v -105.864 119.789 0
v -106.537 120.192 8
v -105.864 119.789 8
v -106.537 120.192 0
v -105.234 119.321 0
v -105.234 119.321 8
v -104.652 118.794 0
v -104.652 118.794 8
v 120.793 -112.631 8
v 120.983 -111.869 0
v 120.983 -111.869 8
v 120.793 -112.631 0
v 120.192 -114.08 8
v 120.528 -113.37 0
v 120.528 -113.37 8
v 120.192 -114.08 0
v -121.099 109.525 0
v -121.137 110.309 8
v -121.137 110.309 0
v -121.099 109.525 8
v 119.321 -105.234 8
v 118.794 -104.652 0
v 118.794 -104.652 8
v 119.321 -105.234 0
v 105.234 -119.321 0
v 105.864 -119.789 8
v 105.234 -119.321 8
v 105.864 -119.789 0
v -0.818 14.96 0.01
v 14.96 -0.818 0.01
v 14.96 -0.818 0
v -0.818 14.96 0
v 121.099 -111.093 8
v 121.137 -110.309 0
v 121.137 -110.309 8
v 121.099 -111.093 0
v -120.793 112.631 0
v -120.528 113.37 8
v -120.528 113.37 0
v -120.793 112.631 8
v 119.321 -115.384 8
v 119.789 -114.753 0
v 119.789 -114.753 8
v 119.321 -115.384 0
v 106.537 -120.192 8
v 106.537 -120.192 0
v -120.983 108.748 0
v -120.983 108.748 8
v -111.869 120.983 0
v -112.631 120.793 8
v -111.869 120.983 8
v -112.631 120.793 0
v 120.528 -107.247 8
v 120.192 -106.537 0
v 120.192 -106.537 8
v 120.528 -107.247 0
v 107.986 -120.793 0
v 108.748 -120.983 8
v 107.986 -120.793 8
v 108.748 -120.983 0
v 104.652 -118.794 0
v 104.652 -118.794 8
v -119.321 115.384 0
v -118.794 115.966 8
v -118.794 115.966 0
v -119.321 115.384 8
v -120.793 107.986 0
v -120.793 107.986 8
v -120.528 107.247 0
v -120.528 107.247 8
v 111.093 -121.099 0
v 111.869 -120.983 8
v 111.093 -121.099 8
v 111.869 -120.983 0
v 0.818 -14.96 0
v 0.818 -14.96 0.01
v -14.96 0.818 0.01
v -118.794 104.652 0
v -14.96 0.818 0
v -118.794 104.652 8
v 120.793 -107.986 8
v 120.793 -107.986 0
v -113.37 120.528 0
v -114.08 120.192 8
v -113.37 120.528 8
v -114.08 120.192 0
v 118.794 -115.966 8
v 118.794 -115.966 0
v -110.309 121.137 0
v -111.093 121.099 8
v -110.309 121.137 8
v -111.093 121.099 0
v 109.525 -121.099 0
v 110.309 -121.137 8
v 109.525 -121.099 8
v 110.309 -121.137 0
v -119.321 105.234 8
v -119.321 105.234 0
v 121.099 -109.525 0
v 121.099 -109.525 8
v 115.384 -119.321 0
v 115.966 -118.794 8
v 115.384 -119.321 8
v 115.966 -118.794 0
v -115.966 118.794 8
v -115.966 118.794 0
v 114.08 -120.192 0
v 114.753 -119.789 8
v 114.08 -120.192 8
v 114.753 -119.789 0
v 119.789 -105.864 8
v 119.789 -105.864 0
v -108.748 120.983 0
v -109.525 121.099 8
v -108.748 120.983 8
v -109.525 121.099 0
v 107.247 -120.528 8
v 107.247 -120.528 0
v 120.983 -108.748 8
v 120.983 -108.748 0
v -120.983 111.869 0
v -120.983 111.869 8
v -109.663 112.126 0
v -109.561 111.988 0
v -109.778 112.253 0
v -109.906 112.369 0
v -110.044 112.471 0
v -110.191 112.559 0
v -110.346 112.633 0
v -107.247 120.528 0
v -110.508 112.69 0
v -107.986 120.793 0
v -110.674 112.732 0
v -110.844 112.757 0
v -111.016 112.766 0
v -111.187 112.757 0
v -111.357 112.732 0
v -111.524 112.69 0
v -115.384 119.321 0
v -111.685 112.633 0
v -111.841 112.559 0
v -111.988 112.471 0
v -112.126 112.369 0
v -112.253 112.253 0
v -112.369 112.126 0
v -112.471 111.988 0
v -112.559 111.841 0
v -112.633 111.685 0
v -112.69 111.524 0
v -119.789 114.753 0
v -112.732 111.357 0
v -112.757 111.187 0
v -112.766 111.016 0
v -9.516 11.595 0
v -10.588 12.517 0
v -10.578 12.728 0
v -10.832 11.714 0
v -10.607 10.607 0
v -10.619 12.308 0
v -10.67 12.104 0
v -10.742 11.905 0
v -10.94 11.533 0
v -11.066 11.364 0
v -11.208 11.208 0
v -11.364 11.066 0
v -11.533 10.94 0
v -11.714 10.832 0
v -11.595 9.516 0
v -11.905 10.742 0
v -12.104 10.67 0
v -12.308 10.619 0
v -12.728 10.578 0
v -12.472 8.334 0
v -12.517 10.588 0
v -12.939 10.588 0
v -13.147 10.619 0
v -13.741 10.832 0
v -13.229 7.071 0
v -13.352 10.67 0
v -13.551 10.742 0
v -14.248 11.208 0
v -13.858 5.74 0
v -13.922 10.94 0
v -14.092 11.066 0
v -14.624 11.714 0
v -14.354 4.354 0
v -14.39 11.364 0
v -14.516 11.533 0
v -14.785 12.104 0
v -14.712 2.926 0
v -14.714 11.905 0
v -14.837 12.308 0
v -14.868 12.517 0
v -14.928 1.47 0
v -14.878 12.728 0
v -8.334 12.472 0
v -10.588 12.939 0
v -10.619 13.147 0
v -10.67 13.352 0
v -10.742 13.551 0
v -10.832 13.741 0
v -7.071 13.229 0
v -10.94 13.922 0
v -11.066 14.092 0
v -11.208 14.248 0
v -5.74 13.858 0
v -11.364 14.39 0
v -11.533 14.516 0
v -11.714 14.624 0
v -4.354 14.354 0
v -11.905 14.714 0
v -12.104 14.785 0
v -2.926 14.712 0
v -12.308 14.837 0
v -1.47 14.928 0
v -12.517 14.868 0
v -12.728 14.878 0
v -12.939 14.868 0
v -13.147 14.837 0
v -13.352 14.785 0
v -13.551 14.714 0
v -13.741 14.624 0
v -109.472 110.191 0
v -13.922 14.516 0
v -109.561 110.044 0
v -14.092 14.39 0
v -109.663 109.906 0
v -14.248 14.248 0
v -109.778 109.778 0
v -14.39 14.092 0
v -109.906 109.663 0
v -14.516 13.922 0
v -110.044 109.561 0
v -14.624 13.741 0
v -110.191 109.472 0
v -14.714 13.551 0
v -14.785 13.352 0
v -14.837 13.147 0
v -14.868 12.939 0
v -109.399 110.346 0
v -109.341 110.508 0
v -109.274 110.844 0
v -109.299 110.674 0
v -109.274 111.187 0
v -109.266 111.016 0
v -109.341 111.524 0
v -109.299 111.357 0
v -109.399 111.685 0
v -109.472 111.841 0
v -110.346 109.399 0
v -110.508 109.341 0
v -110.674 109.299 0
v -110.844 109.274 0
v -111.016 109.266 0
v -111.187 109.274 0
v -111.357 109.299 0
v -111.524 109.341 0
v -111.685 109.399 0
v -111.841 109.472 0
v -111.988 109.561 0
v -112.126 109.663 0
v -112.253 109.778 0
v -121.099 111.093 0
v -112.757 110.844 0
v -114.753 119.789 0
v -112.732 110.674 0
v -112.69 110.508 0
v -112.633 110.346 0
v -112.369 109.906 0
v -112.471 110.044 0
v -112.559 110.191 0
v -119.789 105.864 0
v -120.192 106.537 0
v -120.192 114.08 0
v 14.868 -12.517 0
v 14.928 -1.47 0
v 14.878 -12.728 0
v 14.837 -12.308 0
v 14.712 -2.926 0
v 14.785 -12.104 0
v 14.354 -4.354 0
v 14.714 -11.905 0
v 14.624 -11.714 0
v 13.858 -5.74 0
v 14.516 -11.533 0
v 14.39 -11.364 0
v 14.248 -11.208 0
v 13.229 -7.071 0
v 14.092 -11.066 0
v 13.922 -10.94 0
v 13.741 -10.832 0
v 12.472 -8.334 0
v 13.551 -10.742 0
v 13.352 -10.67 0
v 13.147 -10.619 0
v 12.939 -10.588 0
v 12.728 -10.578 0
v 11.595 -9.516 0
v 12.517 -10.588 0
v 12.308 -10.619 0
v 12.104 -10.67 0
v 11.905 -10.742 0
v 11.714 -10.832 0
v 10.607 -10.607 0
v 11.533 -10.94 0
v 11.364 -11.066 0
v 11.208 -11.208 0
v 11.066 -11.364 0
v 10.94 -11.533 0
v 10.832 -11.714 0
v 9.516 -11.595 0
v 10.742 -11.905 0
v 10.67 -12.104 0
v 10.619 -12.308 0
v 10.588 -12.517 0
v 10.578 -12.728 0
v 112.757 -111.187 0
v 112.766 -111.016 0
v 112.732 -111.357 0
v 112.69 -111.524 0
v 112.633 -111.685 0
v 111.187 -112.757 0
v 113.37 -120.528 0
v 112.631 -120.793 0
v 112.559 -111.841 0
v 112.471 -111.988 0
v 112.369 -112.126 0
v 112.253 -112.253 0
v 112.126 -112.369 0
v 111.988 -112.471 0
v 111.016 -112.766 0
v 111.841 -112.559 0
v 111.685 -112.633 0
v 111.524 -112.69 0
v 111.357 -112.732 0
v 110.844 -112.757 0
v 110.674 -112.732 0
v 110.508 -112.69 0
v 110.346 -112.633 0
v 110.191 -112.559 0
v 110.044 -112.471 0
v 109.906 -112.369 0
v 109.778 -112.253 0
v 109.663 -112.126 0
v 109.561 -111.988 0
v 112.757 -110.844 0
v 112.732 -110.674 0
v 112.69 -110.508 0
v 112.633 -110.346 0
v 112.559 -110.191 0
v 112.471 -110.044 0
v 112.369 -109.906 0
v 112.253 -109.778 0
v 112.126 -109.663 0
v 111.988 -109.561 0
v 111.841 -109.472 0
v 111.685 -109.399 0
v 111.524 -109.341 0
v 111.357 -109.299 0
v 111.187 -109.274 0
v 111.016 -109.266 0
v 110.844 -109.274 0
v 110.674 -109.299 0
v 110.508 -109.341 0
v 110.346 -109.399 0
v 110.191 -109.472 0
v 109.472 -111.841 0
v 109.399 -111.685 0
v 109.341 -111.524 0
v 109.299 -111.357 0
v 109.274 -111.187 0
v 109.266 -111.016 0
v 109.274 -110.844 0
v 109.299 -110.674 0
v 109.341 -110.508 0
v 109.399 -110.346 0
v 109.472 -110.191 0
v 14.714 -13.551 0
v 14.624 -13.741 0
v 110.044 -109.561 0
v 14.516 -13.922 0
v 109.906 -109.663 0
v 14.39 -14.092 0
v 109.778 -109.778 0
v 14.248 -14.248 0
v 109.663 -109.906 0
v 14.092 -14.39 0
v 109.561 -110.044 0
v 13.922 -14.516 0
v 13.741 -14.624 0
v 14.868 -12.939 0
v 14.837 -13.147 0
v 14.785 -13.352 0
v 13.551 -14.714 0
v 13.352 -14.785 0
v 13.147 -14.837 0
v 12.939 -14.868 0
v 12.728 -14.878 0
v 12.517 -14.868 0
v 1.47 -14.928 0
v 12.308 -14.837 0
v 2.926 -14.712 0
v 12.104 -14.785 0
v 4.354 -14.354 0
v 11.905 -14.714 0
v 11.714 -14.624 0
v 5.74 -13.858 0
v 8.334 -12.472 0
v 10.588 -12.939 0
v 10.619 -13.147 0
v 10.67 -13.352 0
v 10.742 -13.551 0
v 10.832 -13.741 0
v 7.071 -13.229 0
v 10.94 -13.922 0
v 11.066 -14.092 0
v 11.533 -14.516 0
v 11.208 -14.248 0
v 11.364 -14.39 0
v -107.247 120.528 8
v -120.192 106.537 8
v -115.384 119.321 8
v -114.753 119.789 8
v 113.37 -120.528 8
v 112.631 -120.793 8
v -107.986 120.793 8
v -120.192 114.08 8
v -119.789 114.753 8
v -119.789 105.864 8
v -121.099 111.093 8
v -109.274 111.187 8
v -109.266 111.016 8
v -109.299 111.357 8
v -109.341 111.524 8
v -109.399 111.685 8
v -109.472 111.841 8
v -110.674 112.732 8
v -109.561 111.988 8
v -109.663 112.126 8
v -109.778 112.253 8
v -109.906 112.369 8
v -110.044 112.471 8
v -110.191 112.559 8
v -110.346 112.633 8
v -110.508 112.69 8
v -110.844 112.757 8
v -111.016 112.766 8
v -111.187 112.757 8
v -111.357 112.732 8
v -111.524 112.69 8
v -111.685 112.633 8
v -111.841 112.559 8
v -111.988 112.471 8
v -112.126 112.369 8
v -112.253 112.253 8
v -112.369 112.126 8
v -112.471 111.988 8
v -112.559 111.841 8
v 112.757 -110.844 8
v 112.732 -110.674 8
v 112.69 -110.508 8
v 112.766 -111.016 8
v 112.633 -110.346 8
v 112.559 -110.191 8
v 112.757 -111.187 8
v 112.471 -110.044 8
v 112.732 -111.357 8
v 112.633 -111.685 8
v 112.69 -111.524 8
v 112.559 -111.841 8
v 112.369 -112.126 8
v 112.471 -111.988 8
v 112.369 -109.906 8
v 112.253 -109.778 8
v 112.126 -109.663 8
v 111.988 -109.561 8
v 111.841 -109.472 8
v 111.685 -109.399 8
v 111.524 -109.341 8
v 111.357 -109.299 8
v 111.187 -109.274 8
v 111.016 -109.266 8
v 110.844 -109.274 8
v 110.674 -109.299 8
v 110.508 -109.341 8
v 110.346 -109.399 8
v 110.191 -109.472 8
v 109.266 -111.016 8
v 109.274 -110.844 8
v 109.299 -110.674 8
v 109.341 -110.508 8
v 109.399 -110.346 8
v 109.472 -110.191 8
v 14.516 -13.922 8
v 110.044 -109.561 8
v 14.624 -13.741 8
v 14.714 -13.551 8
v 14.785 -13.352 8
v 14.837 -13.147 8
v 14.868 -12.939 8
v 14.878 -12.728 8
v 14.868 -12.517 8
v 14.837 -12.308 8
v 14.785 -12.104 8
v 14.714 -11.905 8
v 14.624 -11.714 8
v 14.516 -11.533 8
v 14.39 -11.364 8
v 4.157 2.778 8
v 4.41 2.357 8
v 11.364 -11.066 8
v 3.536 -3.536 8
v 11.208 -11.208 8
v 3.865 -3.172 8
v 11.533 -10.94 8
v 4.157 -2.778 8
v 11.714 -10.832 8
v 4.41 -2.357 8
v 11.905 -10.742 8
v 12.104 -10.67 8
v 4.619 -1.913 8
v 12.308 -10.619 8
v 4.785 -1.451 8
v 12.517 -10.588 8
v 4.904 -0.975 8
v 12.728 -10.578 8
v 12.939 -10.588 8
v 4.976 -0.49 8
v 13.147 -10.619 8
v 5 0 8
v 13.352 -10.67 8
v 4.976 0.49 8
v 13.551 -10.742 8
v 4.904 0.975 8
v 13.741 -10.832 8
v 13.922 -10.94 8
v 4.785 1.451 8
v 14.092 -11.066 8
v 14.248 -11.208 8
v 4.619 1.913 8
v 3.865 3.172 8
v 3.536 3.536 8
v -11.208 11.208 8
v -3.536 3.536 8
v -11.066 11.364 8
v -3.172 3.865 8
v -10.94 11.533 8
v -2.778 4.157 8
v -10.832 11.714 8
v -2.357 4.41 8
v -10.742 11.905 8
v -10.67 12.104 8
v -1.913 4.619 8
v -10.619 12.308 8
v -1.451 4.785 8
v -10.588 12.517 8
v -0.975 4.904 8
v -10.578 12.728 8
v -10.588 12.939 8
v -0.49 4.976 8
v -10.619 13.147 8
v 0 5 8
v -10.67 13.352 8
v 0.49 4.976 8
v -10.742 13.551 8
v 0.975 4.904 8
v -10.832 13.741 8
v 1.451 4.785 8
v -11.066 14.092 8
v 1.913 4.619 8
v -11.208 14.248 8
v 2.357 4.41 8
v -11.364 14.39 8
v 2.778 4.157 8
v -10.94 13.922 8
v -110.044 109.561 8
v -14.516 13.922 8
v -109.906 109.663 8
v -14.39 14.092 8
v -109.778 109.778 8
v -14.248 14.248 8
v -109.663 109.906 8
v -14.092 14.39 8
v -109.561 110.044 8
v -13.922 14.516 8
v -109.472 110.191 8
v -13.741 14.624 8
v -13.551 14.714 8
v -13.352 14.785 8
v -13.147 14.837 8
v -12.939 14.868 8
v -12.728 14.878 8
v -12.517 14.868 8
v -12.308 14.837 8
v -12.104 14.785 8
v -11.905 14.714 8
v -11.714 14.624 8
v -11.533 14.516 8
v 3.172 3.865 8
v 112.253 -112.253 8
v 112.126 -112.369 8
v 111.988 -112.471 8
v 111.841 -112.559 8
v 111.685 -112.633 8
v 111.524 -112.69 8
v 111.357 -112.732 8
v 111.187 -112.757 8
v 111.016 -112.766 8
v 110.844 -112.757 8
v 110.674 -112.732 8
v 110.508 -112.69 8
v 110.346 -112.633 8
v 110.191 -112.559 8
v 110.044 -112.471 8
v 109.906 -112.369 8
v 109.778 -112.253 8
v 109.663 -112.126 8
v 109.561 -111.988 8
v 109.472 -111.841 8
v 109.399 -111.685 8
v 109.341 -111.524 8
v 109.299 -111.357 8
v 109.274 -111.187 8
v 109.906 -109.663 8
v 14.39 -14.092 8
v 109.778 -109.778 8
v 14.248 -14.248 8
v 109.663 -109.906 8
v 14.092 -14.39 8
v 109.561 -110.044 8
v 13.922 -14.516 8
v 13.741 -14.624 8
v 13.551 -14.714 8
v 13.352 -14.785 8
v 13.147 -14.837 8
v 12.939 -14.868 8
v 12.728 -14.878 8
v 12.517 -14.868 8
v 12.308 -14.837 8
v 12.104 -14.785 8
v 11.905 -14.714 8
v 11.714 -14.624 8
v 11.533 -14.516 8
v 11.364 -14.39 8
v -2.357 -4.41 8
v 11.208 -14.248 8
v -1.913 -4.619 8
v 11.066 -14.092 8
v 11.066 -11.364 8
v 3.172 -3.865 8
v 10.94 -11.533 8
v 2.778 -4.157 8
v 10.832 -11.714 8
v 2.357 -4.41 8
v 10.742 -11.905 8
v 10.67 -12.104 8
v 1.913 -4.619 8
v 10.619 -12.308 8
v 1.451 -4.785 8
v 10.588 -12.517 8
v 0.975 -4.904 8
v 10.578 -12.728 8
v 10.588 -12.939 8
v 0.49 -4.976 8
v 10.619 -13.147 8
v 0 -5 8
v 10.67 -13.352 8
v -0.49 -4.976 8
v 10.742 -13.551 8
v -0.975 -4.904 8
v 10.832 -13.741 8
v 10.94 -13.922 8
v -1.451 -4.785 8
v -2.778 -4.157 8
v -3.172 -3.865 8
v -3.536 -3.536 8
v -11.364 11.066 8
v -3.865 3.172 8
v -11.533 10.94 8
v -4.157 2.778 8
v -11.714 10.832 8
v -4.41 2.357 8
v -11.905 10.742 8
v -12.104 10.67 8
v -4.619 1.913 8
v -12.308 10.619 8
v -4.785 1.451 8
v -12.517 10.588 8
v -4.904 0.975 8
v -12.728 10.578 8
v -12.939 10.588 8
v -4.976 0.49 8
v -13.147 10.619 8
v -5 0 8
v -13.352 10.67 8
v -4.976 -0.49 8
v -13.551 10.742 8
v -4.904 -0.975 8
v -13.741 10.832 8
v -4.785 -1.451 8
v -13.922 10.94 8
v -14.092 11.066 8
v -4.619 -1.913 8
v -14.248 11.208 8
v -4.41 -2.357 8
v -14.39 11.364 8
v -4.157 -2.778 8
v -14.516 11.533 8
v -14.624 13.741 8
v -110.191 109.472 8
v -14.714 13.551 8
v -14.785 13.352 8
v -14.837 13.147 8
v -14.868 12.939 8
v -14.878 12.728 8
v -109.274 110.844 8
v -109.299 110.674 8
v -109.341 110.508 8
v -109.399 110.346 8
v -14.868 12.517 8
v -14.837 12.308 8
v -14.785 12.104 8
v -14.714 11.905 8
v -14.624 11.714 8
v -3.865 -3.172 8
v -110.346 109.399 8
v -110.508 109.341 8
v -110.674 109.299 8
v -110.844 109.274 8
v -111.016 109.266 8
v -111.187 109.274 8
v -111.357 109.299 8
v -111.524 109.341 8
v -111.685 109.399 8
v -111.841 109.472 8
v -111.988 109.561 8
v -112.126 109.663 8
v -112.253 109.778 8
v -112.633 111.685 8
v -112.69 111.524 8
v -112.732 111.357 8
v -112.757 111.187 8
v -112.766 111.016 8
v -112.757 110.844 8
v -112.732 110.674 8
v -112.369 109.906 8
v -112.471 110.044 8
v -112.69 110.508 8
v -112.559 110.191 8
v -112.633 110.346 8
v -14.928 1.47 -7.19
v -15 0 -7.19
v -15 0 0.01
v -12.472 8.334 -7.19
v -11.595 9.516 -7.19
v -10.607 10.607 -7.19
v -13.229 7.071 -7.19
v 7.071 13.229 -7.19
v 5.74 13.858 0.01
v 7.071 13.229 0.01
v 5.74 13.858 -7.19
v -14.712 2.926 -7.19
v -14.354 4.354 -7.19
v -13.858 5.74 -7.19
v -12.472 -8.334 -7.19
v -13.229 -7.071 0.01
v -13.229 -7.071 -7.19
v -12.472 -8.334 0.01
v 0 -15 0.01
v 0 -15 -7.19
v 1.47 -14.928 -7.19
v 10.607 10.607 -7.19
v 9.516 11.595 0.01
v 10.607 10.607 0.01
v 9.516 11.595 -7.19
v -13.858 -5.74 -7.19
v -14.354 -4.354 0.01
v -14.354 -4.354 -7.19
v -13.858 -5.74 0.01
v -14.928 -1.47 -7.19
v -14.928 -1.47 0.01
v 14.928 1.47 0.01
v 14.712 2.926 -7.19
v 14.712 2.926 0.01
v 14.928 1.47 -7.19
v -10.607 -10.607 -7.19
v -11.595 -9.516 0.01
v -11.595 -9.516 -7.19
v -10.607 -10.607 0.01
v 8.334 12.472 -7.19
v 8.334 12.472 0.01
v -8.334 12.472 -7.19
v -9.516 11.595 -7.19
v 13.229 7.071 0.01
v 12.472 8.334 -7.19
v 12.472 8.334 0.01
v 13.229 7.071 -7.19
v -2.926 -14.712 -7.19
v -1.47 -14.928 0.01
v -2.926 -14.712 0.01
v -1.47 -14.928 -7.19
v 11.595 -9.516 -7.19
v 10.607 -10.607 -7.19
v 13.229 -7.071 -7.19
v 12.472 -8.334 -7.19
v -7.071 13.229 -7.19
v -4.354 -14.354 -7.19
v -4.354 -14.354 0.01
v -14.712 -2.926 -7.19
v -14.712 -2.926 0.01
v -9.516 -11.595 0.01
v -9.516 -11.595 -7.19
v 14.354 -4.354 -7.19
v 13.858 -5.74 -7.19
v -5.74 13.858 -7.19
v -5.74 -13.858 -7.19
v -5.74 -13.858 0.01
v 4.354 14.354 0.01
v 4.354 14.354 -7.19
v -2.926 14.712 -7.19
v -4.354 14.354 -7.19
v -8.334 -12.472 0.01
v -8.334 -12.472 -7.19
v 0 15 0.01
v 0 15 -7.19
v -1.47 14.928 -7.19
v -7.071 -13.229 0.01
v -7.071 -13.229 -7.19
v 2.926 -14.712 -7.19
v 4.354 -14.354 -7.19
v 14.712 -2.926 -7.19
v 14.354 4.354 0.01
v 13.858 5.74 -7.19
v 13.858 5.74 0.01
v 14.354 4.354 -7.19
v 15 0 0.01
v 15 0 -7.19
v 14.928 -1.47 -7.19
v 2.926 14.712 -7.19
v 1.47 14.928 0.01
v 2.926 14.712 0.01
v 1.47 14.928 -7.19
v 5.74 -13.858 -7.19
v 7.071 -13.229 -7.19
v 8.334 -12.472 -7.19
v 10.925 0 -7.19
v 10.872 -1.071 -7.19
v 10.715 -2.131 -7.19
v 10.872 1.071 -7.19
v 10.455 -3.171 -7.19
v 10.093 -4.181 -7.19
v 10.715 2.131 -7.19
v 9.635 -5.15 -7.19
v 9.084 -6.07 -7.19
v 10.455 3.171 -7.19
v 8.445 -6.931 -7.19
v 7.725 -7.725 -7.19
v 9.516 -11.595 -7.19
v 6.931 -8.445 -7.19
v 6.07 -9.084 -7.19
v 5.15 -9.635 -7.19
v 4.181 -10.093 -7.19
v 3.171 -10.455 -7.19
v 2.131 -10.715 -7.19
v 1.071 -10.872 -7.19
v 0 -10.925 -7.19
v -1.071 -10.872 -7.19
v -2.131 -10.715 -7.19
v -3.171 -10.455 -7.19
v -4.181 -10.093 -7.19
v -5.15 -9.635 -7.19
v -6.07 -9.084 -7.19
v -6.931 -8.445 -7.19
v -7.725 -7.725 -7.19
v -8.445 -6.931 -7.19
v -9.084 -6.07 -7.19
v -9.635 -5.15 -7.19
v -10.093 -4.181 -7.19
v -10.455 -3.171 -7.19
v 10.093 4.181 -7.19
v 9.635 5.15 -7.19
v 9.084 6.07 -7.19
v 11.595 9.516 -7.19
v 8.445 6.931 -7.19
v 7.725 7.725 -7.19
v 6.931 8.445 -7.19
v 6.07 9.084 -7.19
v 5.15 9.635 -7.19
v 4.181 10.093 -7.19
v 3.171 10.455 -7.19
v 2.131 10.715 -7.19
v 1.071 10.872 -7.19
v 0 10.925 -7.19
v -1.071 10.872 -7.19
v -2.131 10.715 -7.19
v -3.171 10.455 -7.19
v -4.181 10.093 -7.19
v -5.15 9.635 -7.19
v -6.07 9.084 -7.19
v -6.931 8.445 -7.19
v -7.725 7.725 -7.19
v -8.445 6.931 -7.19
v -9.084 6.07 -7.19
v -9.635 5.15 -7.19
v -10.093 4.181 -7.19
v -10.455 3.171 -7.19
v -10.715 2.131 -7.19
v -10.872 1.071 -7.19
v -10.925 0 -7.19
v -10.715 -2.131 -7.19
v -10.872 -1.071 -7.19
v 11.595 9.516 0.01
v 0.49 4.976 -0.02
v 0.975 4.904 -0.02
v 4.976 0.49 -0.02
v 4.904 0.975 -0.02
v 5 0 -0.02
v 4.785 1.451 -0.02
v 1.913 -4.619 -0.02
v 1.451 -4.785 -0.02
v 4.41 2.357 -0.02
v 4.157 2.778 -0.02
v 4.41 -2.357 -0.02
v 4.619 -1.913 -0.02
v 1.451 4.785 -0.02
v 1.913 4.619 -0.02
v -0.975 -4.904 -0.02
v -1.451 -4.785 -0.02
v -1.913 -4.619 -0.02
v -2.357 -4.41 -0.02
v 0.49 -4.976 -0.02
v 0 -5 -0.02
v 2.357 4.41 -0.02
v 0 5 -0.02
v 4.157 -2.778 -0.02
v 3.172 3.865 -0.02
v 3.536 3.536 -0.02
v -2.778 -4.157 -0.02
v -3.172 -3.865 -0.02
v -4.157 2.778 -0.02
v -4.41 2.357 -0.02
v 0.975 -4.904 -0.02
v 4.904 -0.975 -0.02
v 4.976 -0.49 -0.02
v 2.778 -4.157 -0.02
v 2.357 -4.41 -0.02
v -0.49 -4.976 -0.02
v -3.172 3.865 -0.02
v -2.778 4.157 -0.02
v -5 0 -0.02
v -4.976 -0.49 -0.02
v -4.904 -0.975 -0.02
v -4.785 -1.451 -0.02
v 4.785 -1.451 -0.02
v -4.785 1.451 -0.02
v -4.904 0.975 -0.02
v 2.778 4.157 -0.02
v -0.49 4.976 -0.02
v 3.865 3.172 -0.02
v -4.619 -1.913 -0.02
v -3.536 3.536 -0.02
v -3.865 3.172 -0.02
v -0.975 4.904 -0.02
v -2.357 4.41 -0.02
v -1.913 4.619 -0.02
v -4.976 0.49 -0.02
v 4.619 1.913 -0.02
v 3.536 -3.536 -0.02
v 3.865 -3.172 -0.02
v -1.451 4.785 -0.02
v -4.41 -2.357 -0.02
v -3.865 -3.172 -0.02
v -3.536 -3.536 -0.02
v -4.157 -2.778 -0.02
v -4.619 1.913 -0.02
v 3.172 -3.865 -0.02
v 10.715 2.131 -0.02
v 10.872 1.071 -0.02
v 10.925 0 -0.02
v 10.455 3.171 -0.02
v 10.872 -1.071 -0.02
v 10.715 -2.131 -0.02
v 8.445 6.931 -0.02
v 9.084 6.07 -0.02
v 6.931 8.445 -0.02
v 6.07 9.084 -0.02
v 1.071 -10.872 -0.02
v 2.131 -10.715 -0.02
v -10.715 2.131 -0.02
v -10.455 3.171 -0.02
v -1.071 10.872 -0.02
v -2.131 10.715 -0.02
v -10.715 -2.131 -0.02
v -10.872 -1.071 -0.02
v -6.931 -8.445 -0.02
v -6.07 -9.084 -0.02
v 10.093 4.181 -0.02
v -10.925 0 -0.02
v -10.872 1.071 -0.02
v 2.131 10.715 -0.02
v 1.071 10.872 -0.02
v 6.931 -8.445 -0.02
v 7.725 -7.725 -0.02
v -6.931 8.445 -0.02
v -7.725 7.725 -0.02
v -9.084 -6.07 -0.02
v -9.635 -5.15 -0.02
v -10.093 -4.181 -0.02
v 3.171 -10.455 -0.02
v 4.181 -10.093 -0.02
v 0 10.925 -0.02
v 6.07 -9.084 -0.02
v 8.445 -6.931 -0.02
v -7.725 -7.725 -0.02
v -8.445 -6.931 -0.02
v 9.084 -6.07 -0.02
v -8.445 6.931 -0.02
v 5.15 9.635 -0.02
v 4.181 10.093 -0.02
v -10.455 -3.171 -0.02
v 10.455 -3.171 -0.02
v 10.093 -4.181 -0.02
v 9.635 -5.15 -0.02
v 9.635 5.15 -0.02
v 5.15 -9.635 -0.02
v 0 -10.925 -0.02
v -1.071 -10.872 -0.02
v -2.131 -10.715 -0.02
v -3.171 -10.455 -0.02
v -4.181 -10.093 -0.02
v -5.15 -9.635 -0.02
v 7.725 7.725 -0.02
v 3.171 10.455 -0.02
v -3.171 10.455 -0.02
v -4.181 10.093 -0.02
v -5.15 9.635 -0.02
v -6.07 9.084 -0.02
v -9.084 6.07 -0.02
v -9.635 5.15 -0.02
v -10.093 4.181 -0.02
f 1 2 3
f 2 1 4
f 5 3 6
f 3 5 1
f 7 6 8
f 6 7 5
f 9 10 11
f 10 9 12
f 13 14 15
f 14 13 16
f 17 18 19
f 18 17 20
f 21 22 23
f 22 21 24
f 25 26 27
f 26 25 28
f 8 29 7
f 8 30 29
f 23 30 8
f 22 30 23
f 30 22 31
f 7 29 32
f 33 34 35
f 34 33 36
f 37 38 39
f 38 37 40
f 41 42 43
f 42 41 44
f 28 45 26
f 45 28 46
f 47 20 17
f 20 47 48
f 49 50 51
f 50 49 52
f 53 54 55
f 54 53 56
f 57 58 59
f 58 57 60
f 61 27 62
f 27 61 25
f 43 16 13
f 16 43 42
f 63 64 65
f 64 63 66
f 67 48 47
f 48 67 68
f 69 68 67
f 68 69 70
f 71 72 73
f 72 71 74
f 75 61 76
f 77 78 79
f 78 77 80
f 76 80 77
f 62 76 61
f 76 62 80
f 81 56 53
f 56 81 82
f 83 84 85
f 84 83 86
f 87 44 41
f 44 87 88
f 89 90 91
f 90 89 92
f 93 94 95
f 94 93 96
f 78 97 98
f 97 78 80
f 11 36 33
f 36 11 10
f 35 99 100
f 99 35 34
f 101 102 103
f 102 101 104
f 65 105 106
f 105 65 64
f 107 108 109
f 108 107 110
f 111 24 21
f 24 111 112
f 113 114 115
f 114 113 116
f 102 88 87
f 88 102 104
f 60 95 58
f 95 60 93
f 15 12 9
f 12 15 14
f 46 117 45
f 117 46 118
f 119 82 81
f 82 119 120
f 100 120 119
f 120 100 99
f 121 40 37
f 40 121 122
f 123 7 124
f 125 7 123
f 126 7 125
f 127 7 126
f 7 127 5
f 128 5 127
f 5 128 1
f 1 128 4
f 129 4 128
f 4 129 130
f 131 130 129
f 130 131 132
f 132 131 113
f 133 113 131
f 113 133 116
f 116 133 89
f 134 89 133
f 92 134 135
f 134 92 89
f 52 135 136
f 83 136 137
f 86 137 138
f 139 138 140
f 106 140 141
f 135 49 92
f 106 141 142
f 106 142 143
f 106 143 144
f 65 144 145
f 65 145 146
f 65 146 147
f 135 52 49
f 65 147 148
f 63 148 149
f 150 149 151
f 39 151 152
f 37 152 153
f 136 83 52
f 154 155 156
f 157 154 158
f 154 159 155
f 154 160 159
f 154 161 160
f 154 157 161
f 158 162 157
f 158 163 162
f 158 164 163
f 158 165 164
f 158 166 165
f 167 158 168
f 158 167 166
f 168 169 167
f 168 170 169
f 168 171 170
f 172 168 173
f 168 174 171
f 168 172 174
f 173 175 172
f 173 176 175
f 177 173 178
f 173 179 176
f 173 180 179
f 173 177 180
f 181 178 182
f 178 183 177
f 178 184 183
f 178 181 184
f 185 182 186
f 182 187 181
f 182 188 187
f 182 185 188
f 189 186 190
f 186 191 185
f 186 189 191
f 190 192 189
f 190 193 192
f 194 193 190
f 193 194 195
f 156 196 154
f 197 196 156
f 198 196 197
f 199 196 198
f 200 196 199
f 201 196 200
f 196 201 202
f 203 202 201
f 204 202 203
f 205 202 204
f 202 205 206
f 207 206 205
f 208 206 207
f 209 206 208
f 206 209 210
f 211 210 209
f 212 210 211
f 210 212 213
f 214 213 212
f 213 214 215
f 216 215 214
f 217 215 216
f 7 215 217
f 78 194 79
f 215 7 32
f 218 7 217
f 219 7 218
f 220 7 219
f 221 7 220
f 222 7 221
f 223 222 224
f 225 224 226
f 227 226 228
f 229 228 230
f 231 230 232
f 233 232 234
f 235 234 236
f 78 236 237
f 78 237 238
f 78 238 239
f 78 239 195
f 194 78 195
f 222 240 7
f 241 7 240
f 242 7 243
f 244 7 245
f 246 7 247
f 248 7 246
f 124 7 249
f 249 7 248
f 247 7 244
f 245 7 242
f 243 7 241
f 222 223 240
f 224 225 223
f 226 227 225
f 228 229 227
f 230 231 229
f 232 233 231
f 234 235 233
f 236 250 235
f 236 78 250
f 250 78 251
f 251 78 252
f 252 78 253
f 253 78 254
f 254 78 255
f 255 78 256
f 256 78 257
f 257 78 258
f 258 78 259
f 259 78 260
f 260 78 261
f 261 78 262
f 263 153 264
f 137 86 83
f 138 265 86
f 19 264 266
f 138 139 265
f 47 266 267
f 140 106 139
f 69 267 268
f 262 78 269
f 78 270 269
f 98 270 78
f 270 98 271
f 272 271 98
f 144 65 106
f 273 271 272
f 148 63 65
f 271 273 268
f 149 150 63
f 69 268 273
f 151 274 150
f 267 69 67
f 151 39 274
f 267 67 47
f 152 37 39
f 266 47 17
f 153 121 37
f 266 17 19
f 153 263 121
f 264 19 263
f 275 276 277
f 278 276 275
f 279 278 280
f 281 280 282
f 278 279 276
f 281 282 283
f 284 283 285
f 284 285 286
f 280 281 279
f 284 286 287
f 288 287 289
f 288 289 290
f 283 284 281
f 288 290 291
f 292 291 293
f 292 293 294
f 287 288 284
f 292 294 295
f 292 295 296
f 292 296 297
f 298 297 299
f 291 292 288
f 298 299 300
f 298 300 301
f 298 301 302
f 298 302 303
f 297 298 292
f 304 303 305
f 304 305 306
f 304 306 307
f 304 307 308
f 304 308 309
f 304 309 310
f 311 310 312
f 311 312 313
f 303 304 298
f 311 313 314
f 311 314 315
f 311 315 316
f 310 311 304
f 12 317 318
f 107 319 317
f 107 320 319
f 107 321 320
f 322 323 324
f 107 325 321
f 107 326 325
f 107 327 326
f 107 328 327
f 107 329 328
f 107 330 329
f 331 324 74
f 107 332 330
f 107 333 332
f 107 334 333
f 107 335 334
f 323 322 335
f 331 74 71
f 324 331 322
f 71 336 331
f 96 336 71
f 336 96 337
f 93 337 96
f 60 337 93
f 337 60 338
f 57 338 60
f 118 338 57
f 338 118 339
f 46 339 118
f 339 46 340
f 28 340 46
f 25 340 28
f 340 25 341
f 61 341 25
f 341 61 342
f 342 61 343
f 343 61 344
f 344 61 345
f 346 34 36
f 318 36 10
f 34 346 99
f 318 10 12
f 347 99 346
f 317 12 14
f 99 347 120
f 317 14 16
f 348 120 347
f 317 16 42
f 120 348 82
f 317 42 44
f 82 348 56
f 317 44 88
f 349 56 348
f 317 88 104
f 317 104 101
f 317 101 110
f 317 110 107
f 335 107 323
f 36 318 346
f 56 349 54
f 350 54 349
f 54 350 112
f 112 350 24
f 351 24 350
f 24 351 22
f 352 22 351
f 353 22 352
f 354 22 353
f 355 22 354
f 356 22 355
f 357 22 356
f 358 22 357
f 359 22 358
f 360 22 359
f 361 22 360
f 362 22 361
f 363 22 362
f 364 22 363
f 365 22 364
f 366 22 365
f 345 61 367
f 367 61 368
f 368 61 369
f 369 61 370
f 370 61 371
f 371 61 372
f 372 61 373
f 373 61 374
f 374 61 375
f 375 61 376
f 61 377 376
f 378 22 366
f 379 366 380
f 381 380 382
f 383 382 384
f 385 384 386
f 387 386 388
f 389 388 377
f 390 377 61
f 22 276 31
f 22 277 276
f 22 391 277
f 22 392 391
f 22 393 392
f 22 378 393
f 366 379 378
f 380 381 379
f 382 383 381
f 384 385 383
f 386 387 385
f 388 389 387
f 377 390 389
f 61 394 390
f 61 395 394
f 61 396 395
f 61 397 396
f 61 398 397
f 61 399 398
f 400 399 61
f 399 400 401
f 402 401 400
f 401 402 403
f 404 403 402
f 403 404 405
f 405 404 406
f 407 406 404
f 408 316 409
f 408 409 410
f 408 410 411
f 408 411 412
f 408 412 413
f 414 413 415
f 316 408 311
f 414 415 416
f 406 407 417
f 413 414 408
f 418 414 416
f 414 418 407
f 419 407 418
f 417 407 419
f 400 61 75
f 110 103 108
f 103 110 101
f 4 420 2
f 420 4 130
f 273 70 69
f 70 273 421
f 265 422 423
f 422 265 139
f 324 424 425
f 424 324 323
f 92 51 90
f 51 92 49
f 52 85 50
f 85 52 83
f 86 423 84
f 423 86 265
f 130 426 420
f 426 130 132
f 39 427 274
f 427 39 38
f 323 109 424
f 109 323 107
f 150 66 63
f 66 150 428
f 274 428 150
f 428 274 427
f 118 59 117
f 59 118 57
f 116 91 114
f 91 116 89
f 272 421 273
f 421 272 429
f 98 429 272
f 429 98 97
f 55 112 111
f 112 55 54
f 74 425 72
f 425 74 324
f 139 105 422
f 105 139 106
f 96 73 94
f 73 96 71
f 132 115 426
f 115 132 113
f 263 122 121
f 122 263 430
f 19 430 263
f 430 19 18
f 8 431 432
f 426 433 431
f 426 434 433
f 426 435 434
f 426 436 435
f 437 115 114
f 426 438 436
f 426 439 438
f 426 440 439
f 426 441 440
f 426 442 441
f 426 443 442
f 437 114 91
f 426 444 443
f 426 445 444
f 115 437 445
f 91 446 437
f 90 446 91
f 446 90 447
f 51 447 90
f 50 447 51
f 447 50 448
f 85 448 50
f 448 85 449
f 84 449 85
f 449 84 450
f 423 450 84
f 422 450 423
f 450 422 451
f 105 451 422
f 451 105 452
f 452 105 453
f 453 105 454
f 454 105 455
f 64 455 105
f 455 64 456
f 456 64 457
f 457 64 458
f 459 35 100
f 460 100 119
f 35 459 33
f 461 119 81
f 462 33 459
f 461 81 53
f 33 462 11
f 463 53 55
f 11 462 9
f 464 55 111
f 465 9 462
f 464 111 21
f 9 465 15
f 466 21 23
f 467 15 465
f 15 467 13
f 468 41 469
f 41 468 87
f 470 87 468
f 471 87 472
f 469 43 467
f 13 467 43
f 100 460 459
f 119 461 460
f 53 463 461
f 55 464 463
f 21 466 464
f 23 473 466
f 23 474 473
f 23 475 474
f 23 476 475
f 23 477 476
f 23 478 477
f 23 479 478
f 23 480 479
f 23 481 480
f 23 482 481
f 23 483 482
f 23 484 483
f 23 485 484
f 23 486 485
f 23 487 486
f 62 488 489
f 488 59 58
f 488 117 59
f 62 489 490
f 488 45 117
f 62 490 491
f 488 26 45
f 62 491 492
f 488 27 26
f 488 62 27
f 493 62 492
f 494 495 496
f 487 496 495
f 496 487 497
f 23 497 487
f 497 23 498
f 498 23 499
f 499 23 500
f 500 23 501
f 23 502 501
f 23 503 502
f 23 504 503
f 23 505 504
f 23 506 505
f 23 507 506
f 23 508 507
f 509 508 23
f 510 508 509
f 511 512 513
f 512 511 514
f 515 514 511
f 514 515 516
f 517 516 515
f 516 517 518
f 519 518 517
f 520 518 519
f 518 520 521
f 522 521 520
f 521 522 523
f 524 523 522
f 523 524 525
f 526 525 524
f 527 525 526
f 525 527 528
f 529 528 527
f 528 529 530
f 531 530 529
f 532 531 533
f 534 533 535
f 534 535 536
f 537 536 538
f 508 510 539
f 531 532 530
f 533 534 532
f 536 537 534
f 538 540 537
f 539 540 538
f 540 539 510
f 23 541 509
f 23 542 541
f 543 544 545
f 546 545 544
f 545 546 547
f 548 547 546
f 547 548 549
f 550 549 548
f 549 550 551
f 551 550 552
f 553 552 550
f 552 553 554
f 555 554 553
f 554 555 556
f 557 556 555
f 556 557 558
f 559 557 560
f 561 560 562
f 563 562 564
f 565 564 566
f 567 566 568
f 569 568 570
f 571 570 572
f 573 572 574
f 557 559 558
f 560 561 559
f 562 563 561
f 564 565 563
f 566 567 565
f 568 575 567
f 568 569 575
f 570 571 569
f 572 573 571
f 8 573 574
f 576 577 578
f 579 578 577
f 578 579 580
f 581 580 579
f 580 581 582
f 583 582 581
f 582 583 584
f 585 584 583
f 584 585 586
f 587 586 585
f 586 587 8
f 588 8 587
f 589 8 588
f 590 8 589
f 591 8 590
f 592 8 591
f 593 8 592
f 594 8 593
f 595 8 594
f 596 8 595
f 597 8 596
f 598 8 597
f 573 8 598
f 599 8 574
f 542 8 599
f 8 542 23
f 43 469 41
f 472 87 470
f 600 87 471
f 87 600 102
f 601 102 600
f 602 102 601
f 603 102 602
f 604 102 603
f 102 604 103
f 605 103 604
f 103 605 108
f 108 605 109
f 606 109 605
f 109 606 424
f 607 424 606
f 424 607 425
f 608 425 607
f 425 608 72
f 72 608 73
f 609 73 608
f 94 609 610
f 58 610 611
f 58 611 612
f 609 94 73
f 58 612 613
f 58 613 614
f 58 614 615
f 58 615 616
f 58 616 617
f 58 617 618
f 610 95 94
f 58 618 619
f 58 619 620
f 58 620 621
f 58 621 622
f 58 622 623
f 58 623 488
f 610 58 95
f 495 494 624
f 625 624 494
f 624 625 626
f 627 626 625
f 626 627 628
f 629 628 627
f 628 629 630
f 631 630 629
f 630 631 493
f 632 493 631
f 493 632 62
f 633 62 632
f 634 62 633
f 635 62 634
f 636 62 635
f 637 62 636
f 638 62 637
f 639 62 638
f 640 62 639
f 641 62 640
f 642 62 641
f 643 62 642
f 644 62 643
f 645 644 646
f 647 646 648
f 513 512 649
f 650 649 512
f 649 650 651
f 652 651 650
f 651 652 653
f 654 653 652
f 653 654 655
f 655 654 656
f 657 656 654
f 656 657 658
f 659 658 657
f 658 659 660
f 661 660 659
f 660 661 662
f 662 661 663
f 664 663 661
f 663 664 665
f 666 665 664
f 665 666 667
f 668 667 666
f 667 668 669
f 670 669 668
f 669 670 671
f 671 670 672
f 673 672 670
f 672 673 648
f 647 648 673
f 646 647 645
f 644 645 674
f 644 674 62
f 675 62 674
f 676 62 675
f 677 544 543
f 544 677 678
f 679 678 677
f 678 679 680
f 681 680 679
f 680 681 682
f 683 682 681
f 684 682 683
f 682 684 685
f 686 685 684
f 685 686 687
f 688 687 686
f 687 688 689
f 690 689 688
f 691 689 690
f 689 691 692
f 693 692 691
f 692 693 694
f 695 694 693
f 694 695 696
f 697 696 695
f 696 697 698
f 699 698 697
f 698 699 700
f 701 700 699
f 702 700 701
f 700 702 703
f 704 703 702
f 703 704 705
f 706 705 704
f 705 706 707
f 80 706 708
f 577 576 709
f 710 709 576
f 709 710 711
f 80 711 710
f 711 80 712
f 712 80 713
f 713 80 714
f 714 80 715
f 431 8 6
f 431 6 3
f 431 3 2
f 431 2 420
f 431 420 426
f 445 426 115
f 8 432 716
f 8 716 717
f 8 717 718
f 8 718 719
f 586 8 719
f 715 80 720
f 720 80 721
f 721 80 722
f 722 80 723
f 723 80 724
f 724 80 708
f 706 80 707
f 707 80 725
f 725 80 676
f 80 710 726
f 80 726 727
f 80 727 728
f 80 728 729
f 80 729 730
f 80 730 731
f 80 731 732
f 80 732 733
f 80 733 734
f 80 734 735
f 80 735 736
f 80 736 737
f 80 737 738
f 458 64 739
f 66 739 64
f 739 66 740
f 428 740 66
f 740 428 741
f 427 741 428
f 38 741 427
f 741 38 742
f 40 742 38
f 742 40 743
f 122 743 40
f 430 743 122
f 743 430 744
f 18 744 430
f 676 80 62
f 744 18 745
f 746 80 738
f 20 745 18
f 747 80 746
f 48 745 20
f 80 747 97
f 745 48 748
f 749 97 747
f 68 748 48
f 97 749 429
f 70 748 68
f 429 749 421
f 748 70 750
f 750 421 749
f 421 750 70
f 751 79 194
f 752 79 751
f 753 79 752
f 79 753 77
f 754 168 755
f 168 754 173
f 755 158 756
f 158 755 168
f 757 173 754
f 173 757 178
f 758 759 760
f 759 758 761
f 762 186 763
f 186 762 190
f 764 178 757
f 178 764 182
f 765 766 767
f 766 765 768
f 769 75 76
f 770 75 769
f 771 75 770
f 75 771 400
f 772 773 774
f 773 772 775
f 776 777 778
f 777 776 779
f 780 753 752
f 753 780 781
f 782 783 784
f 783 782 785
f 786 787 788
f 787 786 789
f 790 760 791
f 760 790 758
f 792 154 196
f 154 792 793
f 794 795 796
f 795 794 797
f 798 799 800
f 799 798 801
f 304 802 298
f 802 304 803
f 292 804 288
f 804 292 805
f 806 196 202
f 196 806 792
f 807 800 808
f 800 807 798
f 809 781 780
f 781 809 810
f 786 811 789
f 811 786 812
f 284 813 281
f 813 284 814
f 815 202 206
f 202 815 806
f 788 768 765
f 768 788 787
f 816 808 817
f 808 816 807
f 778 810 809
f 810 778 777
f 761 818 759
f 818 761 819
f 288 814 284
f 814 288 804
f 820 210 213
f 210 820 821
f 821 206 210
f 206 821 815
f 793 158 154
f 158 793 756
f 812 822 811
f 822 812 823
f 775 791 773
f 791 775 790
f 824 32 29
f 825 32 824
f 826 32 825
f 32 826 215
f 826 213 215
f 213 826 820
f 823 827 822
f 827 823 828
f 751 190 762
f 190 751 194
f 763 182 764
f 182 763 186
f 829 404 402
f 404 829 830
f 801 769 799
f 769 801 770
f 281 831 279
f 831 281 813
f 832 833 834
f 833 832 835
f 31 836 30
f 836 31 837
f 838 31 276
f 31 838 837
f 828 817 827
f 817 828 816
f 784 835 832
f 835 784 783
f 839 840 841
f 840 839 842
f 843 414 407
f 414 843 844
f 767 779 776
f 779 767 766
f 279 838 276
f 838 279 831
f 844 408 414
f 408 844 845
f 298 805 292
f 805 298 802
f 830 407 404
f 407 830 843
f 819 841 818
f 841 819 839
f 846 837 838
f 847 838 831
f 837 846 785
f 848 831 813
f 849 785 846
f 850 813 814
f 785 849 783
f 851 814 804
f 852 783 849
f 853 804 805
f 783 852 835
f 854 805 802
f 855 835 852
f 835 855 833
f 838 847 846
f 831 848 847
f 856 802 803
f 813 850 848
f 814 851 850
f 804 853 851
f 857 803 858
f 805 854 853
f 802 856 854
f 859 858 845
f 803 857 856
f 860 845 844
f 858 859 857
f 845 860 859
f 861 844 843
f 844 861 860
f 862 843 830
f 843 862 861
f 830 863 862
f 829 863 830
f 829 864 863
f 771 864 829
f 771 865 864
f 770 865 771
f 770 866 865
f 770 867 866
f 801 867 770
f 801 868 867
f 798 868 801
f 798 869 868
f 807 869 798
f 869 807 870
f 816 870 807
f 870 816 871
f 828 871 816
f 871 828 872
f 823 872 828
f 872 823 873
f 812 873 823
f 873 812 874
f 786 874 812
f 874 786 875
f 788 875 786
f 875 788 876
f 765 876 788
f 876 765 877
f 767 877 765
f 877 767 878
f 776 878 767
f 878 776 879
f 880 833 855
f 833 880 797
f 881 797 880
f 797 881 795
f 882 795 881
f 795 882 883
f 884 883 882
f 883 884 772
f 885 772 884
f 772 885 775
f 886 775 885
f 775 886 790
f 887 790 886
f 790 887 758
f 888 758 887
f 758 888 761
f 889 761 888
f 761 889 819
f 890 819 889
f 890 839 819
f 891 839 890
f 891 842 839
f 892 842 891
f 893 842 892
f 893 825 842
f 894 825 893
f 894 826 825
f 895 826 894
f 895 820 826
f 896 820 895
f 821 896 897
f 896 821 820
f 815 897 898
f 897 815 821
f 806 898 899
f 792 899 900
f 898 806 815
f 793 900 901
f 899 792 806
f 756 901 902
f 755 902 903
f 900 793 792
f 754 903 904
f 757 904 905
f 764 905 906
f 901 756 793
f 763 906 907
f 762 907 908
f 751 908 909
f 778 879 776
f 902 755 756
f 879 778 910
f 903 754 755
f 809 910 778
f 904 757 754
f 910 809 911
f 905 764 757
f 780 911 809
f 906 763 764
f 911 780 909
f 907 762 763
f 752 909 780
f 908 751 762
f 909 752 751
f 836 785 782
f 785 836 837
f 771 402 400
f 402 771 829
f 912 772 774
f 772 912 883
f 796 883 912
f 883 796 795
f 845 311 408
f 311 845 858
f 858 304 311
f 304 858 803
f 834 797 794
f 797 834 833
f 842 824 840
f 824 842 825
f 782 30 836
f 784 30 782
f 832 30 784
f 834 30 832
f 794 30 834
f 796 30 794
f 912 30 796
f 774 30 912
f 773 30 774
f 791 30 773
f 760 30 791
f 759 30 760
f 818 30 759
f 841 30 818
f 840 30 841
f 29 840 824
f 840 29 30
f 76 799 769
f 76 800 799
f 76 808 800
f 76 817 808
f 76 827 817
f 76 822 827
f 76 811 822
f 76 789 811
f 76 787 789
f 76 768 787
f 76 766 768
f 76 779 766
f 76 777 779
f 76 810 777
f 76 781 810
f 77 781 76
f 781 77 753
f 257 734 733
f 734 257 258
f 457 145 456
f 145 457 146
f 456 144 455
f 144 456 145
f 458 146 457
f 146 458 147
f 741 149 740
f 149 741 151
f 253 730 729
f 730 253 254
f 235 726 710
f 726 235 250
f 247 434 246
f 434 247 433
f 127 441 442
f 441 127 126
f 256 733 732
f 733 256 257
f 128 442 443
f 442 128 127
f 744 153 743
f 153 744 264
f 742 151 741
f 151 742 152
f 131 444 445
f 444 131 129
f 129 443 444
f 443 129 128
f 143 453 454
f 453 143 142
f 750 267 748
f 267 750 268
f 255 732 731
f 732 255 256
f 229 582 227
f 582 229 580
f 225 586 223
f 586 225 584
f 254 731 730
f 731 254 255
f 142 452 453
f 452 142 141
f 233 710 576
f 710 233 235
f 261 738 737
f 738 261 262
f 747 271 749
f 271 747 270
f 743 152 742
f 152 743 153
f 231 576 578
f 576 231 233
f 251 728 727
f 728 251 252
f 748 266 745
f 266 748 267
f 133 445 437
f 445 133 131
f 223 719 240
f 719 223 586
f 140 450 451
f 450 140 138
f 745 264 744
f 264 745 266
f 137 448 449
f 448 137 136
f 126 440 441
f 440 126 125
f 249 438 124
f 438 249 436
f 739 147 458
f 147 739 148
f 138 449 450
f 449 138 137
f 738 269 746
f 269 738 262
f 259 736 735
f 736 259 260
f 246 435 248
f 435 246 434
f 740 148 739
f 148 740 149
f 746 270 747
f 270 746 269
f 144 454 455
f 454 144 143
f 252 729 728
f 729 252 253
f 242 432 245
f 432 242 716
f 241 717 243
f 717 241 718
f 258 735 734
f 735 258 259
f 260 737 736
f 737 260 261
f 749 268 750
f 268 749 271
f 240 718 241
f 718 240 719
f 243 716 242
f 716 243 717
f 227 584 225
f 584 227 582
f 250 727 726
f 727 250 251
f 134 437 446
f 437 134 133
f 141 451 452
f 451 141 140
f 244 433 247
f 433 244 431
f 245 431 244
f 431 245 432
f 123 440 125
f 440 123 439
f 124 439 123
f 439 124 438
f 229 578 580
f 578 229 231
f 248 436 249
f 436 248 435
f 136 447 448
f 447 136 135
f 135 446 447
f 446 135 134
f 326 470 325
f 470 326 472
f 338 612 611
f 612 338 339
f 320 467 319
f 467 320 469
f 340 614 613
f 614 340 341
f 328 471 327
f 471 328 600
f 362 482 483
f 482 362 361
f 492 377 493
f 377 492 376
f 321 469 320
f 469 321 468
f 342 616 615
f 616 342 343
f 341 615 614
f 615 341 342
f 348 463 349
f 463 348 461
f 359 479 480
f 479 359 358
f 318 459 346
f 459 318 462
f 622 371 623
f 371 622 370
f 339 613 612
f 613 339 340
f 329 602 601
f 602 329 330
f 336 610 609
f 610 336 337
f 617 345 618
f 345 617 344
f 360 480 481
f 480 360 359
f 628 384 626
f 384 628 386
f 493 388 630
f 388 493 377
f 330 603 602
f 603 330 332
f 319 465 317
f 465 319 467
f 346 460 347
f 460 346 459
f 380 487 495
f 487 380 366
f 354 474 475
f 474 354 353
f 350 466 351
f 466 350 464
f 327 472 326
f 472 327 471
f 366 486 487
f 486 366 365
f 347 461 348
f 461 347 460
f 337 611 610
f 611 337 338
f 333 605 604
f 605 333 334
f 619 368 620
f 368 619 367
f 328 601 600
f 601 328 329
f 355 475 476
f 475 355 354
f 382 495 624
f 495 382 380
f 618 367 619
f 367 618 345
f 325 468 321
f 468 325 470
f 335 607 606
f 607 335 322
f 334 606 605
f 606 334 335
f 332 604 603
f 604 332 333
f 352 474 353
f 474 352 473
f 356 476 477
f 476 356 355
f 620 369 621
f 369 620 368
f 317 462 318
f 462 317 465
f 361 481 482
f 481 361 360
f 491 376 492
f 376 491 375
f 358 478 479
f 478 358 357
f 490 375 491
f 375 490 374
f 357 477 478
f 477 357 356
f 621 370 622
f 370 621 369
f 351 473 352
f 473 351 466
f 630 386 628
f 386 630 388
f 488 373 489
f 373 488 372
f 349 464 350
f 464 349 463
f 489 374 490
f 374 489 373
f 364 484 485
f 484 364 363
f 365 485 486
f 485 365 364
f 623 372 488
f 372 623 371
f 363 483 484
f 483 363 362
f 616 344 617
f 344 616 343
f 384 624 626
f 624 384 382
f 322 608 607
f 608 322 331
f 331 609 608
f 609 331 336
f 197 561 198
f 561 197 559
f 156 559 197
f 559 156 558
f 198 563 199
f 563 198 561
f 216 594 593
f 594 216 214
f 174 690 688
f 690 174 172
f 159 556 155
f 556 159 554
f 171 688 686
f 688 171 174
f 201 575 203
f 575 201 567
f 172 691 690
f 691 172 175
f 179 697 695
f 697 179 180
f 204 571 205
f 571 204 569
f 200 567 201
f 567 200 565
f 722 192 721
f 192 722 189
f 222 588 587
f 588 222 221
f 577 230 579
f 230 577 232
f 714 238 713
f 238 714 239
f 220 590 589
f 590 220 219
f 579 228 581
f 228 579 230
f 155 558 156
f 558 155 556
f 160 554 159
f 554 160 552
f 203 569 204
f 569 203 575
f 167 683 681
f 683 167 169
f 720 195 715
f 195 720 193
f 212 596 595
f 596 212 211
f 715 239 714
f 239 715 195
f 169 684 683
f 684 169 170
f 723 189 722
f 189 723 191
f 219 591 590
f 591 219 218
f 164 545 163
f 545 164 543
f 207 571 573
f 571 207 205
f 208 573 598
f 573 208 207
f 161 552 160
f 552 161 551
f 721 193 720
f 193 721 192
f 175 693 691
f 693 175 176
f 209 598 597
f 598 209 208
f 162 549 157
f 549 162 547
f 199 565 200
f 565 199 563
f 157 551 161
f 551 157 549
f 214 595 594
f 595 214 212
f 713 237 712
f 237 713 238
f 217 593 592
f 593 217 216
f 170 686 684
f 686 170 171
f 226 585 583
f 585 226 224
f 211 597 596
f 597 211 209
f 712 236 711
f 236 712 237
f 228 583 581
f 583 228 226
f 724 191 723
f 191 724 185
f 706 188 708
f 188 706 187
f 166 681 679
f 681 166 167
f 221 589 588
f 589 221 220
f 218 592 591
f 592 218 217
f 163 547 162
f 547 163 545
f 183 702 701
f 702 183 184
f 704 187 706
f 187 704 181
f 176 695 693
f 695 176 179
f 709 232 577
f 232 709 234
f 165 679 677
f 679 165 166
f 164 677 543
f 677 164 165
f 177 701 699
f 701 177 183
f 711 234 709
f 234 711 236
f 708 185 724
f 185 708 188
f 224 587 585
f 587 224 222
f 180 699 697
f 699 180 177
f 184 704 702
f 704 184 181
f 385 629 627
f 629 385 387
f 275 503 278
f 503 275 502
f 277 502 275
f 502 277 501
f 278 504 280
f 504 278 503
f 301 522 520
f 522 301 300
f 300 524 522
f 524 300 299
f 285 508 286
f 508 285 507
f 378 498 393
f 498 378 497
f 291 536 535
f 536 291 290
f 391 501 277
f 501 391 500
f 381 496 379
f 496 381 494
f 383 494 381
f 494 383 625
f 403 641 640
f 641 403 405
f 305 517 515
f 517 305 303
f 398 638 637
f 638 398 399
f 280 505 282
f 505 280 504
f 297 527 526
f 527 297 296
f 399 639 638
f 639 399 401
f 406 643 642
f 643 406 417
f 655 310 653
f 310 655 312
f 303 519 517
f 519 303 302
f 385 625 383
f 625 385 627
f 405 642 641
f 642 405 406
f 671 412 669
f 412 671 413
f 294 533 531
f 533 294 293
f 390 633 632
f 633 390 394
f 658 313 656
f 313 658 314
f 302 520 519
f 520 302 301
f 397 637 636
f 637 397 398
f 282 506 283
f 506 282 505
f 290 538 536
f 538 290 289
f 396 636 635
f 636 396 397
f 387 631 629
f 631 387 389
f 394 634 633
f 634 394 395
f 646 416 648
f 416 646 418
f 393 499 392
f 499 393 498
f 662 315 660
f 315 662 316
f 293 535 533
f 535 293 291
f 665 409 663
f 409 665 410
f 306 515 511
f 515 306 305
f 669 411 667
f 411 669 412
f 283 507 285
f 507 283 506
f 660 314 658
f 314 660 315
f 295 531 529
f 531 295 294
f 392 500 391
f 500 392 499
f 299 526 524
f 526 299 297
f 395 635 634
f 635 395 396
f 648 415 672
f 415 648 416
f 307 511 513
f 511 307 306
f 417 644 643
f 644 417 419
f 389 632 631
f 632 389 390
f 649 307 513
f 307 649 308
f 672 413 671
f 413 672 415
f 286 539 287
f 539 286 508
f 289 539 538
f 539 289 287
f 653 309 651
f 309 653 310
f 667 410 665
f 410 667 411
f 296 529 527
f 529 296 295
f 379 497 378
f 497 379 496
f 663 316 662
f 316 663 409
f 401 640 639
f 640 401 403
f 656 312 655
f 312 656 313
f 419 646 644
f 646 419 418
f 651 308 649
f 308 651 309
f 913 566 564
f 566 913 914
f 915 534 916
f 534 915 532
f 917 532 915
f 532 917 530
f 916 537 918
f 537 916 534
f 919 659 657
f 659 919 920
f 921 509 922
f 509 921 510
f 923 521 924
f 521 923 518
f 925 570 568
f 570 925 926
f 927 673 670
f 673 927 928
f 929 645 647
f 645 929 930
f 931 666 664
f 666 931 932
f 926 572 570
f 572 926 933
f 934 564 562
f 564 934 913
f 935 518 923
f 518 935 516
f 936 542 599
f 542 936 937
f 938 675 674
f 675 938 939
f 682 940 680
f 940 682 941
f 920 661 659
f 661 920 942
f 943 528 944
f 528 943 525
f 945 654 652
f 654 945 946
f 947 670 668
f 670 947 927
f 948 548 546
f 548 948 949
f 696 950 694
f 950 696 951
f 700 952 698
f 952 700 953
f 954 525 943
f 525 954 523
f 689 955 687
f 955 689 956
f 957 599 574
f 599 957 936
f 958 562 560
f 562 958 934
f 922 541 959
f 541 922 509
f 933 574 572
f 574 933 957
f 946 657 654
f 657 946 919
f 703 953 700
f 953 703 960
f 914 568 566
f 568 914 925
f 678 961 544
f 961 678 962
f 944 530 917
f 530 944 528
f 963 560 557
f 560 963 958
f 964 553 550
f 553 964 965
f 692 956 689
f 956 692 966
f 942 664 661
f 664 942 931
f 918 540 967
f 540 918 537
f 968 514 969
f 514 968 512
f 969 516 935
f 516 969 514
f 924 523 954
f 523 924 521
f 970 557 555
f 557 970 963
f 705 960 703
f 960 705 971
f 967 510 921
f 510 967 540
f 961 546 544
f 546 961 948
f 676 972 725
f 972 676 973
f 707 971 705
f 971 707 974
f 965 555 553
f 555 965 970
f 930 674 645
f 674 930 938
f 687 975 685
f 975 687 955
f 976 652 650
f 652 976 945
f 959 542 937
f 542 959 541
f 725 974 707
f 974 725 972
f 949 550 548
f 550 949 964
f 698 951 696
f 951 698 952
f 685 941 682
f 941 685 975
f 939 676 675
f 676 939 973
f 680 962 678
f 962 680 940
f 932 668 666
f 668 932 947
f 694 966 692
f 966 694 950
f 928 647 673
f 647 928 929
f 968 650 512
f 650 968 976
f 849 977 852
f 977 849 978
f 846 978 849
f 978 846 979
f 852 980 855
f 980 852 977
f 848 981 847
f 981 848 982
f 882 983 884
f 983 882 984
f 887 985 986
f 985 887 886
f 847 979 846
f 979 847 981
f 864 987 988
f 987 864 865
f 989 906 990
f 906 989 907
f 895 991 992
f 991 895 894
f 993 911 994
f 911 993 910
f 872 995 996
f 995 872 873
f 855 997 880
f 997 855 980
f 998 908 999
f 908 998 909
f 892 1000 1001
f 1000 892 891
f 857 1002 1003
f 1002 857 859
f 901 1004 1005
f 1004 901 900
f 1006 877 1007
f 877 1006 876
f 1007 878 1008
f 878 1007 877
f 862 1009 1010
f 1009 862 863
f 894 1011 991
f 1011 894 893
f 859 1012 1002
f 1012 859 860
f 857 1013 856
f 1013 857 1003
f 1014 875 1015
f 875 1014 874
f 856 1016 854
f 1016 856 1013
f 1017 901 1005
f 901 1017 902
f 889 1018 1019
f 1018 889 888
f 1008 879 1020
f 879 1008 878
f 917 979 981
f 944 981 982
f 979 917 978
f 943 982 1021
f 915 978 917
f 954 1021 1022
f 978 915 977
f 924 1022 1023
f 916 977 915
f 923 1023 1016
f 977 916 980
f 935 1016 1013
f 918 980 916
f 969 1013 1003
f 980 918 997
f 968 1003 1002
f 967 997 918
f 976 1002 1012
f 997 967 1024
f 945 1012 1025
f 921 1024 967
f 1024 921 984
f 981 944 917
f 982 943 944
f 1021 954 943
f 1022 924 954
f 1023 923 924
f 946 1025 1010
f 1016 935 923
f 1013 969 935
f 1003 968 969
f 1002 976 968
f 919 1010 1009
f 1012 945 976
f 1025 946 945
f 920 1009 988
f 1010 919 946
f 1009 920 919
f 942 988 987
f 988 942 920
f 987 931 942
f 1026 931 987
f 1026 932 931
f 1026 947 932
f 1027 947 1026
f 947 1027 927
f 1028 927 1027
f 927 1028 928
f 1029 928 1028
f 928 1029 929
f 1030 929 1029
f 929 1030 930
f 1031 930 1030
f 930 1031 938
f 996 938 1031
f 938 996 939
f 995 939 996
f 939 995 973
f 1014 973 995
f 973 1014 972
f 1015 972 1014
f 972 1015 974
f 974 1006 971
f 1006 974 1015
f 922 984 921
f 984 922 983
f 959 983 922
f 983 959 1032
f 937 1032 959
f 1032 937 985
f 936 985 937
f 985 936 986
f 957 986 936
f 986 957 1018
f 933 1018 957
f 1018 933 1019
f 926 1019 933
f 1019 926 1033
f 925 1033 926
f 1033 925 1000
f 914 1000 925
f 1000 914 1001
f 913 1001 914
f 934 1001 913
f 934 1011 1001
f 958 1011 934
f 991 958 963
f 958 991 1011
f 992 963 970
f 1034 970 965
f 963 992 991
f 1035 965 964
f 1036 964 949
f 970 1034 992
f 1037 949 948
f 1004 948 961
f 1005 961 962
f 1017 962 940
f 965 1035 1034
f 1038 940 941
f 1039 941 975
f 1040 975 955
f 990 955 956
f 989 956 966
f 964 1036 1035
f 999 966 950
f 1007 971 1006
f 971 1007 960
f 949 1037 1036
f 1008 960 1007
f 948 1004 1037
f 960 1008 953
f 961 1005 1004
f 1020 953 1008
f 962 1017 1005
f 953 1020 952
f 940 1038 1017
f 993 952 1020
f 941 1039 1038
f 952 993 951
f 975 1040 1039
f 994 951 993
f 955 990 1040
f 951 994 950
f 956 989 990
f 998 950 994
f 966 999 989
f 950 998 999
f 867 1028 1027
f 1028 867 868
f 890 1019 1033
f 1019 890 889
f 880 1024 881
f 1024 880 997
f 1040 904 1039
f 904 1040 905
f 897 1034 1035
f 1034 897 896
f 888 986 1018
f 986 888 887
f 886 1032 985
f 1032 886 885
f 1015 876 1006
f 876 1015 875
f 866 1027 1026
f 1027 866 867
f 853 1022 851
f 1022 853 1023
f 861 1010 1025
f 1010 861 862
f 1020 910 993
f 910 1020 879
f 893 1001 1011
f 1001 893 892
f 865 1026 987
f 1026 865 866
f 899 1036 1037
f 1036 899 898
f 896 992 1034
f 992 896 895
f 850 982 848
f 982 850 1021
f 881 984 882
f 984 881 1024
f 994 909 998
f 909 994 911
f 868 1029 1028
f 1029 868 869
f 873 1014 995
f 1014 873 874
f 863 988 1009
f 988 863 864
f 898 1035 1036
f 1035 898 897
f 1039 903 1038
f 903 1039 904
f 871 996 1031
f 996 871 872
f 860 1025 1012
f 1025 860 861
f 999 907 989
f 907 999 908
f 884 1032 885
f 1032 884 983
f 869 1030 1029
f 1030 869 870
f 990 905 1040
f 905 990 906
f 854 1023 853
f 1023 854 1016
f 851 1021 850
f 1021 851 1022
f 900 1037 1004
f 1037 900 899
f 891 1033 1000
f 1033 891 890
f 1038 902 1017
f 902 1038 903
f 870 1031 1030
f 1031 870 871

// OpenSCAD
// Gen-DP — rear BEARING BRIDGE (bar endbell, 2026-10-10): a 608 boss on a 20 mm wide bar that spans the
// two frame rods at 135 deg and 135+180 deg (R = flange_bolt_r). The front bridge uses the rods at 45/225 deg, the rear
// bridge the rods at 135/315 deg, so the two bridges cross at 90 deg and the stator is held at 4 points.
// A bar instead of a full disc is what lets this big-ring kit fit ONE 410 mm plate. Print flat face DOWN (boss up, no supports).
// Brace holes (temporary M4 jack rods, R = brace_r) sit on the bar axis.
include <parameters.scad>;
$fn = 64;
bar_w = 20;
bar_len = 2 * (flange_bolt_r + 9);
module bar_2d() { offset(r=8) offset(delta=-8) square([bar_len, bar_w], center=true); }
difference() {
    rotate([0, 0, 135]) union() {
        linear_extrude(endbell_thick) bar_2d();
        translate([0, 0, -bearing_h + 0.01]) cylinder(d=30, h=bearing_h);
    }
    translate([0, 0, -bearing_h - 0.1]) cylinder(d=endbell_shaft_clear, h=50);
    translate([0, 0, -bearing_h - 0.02]) cylinder(d=bearing_d, h=bearing_h);
    for (s = [0, 180]) rotate([0, 0, 135 + s]) translate([flange_bolt_r, 0, -20]) cylinder(d=m3_clear, h=60);
    for (a = brace_angles) translate([brace_r*cos(a), brace_r*sin(a), -20]) cylinder(d=brace_d, h=50);
}
